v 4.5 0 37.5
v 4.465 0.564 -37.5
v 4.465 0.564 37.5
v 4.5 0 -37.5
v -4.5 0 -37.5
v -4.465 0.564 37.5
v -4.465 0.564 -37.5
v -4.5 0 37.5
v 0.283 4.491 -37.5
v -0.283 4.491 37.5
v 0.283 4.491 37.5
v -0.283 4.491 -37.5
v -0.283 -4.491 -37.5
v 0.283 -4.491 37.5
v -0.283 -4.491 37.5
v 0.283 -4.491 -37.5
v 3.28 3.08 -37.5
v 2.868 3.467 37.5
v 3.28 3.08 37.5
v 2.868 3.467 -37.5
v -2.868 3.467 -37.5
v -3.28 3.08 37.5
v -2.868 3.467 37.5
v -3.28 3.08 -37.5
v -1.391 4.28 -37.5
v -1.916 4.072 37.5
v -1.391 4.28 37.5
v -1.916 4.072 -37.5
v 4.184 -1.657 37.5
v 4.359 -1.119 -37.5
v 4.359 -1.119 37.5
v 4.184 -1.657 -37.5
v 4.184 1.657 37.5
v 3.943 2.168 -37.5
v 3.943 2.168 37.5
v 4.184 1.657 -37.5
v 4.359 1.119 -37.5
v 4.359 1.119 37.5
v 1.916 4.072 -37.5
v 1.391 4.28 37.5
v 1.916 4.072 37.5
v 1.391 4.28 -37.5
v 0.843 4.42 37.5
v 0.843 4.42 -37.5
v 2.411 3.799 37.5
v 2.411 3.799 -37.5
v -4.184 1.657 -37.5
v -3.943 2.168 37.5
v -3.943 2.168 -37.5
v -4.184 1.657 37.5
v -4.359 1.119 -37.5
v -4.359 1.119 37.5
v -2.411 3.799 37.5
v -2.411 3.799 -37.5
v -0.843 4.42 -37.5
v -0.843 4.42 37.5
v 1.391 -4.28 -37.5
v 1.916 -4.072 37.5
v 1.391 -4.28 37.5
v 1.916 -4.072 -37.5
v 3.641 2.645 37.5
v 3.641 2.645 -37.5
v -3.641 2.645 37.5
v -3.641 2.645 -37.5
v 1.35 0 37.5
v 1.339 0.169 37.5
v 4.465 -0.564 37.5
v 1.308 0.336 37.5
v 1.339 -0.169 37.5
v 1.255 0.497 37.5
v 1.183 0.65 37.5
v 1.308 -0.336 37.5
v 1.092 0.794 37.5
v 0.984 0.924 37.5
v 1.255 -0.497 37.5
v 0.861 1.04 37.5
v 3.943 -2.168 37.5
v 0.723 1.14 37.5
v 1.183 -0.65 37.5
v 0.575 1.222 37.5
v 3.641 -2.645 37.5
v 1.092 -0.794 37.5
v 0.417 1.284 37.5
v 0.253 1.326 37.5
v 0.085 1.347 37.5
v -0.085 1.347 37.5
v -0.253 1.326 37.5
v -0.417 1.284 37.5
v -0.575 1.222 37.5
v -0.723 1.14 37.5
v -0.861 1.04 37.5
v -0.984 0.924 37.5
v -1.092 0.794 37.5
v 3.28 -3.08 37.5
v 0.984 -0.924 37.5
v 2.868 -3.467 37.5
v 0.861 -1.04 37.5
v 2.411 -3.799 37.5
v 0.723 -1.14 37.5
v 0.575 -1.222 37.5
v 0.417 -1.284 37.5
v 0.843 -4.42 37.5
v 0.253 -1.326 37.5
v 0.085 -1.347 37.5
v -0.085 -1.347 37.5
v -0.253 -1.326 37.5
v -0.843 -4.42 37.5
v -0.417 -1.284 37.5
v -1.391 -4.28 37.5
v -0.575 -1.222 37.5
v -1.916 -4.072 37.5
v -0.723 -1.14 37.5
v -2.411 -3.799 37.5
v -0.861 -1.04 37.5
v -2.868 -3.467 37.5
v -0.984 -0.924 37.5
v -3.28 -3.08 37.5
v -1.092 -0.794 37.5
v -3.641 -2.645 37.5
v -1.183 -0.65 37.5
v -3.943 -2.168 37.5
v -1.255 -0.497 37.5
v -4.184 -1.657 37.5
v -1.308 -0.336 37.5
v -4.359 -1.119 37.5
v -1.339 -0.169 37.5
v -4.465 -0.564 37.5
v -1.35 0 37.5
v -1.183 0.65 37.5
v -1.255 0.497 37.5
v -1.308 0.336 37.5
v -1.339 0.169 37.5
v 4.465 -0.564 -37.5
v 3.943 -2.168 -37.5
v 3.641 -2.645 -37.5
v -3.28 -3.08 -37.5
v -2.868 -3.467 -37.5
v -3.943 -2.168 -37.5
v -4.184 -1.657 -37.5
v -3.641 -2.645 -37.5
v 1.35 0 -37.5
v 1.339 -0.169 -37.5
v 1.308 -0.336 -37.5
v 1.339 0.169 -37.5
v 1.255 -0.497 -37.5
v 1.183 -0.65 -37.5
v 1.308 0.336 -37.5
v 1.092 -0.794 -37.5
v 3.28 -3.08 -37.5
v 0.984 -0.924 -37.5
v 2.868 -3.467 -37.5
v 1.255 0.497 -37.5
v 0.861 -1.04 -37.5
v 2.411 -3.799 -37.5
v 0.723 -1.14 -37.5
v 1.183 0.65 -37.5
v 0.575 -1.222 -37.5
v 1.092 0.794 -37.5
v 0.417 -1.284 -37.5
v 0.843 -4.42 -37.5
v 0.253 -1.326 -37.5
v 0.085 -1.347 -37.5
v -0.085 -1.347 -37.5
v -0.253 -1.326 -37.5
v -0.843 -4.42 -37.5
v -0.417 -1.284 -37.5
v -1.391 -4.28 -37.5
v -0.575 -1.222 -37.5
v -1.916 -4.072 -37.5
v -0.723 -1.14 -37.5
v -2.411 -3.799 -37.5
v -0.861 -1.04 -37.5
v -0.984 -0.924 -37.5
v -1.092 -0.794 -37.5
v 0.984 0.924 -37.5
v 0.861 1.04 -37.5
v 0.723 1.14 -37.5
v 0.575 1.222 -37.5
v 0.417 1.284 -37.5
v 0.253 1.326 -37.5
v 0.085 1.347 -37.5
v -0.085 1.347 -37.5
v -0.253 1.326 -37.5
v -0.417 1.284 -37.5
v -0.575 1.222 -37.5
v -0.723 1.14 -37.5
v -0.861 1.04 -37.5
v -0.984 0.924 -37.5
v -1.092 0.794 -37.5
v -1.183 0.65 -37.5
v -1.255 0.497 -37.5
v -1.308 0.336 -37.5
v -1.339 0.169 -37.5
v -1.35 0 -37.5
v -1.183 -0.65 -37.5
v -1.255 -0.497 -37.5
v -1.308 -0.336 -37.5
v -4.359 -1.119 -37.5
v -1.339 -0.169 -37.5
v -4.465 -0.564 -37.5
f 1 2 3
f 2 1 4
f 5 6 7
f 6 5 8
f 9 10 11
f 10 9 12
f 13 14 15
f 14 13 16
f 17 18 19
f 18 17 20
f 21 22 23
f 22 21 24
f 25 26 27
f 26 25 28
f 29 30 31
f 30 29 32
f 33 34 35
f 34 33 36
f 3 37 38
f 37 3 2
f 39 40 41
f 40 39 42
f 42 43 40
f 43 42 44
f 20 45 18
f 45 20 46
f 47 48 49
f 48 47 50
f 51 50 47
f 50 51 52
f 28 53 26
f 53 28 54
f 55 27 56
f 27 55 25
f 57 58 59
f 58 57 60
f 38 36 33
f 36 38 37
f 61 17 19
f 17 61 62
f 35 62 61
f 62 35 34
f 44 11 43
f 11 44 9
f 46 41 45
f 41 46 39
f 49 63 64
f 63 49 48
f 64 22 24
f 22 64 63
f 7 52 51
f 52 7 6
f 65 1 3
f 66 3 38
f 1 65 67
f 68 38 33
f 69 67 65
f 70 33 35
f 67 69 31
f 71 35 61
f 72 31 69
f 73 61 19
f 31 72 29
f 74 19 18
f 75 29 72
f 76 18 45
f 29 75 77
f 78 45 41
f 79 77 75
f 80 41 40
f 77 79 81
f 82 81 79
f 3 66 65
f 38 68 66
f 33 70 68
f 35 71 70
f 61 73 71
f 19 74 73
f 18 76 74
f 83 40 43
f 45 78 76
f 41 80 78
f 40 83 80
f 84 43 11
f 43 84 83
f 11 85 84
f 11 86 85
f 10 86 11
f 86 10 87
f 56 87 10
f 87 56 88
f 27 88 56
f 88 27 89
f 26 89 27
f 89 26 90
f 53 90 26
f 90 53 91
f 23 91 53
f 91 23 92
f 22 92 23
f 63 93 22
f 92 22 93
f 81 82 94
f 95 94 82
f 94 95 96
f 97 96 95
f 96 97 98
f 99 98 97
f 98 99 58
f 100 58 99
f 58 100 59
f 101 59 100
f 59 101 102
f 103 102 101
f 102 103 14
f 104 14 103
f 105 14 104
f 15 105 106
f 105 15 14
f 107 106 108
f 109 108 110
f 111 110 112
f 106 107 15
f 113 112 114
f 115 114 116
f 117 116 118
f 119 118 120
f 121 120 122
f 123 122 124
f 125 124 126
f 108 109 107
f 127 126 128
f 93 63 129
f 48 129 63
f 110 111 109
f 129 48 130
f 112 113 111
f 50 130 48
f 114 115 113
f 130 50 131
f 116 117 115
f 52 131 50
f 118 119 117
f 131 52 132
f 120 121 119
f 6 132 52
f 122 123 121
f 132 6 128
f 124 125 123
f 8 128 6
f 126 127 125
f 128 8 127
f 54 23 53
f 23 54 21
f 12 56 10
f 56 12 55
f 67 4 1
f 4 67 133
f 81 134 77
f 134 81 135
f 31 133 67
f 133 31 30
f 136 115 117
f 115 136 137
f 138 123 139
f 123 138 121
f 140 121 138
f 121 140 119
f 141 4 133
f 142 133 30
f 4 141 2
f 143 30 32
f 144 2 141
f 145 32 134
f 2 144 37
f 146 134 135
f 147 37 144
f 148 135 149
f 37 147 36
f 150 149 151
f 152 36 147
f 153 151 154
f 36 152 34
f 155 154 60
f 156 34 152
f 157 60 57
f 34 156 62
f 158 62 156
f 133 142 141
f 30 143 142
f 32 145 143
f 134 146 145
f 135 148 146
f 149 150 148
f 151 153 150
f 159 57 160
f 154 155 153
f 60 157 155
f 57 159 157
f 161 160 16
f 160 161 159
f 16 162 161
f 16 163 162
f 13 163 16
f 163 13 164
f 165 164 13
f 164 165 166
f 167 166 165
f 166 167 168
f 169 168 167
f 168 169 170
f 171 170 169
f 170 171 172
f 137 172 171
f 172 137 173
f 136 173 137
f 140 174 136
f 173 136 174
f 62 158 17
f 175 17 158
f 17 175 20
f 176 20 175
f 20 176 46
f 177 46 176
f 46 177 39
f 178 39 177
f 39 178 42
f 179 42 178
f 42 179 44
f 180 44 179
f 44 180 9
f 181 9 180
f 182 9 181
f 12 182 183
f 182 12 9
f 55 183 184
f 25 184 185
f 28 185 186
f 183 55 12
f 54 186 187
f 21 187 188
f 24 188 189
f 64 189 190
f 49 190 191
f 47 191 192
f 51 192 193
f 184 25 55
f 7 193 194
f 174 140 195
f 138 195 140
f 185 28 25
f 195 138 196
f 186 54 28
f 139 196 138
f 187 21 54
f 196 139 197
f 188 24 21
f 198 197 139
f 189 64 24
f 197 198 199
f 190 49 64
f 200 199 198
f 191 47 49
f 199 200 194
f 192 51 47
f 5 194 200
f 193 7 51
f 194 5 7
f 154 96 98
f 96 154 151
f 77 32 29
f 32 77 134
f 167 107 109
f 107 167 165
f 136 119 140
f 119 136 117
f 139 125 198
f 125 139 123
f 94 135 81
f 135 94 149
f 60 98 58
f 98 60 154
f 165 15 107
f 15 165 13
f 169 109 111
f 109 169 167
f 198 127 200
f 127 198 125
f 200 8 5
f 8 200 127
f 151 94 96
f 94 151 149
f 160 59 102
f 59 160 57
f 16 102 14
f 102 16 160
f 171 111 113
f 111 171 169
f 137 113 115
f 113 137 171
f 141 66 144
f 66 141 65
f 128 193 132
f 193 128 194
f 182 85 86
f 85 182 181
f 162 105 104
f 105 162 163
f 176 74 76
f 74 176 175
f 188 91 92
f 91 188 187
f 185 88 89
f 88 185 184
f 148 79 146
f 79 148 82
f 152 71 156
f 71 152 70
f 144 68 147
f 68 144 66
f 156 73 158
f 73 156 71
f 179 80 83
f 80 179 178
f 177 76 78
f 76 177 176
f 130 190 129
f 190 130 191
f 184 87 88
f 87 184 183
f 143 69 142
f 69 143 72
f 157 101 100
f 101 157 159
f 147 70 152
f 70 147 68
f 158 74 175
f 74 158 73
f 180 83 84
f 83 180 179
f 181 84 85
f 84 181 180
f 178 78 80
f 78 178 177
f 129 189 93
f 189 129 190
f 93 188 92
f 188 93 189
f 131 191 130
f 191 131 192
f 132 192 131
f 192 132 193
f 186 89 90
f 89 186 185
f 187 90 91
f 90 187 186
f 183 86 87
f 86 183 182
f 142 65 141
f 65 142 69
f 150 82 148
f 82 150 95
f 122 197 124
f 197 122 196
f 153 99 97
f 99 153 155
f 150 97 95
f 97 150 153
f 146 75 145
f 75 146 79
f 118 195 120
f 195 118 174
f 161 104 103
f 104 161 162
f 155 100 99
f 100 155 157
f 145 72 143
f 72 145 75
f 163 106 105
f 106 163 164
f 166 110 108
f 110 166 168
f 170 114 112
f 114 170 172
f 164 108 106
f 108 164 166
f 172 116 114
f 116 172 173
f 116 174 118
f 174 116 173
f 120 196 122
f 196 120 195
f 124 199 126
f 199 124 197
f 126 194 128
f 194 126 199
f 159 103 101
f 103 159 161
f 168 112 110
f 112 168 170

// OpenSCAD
$fn = 50;


difference() {
	union() {
		translate(v = [0, 0, -37.5000000000]) {
			cylinder(h = 75, r = 4.5000000000);
		}
	}
	union() {
		translate(v = [0, 0, -100.0000000000]) {
			cylinder(h = 200, r = 1.3500000000);
		}
	}
}
